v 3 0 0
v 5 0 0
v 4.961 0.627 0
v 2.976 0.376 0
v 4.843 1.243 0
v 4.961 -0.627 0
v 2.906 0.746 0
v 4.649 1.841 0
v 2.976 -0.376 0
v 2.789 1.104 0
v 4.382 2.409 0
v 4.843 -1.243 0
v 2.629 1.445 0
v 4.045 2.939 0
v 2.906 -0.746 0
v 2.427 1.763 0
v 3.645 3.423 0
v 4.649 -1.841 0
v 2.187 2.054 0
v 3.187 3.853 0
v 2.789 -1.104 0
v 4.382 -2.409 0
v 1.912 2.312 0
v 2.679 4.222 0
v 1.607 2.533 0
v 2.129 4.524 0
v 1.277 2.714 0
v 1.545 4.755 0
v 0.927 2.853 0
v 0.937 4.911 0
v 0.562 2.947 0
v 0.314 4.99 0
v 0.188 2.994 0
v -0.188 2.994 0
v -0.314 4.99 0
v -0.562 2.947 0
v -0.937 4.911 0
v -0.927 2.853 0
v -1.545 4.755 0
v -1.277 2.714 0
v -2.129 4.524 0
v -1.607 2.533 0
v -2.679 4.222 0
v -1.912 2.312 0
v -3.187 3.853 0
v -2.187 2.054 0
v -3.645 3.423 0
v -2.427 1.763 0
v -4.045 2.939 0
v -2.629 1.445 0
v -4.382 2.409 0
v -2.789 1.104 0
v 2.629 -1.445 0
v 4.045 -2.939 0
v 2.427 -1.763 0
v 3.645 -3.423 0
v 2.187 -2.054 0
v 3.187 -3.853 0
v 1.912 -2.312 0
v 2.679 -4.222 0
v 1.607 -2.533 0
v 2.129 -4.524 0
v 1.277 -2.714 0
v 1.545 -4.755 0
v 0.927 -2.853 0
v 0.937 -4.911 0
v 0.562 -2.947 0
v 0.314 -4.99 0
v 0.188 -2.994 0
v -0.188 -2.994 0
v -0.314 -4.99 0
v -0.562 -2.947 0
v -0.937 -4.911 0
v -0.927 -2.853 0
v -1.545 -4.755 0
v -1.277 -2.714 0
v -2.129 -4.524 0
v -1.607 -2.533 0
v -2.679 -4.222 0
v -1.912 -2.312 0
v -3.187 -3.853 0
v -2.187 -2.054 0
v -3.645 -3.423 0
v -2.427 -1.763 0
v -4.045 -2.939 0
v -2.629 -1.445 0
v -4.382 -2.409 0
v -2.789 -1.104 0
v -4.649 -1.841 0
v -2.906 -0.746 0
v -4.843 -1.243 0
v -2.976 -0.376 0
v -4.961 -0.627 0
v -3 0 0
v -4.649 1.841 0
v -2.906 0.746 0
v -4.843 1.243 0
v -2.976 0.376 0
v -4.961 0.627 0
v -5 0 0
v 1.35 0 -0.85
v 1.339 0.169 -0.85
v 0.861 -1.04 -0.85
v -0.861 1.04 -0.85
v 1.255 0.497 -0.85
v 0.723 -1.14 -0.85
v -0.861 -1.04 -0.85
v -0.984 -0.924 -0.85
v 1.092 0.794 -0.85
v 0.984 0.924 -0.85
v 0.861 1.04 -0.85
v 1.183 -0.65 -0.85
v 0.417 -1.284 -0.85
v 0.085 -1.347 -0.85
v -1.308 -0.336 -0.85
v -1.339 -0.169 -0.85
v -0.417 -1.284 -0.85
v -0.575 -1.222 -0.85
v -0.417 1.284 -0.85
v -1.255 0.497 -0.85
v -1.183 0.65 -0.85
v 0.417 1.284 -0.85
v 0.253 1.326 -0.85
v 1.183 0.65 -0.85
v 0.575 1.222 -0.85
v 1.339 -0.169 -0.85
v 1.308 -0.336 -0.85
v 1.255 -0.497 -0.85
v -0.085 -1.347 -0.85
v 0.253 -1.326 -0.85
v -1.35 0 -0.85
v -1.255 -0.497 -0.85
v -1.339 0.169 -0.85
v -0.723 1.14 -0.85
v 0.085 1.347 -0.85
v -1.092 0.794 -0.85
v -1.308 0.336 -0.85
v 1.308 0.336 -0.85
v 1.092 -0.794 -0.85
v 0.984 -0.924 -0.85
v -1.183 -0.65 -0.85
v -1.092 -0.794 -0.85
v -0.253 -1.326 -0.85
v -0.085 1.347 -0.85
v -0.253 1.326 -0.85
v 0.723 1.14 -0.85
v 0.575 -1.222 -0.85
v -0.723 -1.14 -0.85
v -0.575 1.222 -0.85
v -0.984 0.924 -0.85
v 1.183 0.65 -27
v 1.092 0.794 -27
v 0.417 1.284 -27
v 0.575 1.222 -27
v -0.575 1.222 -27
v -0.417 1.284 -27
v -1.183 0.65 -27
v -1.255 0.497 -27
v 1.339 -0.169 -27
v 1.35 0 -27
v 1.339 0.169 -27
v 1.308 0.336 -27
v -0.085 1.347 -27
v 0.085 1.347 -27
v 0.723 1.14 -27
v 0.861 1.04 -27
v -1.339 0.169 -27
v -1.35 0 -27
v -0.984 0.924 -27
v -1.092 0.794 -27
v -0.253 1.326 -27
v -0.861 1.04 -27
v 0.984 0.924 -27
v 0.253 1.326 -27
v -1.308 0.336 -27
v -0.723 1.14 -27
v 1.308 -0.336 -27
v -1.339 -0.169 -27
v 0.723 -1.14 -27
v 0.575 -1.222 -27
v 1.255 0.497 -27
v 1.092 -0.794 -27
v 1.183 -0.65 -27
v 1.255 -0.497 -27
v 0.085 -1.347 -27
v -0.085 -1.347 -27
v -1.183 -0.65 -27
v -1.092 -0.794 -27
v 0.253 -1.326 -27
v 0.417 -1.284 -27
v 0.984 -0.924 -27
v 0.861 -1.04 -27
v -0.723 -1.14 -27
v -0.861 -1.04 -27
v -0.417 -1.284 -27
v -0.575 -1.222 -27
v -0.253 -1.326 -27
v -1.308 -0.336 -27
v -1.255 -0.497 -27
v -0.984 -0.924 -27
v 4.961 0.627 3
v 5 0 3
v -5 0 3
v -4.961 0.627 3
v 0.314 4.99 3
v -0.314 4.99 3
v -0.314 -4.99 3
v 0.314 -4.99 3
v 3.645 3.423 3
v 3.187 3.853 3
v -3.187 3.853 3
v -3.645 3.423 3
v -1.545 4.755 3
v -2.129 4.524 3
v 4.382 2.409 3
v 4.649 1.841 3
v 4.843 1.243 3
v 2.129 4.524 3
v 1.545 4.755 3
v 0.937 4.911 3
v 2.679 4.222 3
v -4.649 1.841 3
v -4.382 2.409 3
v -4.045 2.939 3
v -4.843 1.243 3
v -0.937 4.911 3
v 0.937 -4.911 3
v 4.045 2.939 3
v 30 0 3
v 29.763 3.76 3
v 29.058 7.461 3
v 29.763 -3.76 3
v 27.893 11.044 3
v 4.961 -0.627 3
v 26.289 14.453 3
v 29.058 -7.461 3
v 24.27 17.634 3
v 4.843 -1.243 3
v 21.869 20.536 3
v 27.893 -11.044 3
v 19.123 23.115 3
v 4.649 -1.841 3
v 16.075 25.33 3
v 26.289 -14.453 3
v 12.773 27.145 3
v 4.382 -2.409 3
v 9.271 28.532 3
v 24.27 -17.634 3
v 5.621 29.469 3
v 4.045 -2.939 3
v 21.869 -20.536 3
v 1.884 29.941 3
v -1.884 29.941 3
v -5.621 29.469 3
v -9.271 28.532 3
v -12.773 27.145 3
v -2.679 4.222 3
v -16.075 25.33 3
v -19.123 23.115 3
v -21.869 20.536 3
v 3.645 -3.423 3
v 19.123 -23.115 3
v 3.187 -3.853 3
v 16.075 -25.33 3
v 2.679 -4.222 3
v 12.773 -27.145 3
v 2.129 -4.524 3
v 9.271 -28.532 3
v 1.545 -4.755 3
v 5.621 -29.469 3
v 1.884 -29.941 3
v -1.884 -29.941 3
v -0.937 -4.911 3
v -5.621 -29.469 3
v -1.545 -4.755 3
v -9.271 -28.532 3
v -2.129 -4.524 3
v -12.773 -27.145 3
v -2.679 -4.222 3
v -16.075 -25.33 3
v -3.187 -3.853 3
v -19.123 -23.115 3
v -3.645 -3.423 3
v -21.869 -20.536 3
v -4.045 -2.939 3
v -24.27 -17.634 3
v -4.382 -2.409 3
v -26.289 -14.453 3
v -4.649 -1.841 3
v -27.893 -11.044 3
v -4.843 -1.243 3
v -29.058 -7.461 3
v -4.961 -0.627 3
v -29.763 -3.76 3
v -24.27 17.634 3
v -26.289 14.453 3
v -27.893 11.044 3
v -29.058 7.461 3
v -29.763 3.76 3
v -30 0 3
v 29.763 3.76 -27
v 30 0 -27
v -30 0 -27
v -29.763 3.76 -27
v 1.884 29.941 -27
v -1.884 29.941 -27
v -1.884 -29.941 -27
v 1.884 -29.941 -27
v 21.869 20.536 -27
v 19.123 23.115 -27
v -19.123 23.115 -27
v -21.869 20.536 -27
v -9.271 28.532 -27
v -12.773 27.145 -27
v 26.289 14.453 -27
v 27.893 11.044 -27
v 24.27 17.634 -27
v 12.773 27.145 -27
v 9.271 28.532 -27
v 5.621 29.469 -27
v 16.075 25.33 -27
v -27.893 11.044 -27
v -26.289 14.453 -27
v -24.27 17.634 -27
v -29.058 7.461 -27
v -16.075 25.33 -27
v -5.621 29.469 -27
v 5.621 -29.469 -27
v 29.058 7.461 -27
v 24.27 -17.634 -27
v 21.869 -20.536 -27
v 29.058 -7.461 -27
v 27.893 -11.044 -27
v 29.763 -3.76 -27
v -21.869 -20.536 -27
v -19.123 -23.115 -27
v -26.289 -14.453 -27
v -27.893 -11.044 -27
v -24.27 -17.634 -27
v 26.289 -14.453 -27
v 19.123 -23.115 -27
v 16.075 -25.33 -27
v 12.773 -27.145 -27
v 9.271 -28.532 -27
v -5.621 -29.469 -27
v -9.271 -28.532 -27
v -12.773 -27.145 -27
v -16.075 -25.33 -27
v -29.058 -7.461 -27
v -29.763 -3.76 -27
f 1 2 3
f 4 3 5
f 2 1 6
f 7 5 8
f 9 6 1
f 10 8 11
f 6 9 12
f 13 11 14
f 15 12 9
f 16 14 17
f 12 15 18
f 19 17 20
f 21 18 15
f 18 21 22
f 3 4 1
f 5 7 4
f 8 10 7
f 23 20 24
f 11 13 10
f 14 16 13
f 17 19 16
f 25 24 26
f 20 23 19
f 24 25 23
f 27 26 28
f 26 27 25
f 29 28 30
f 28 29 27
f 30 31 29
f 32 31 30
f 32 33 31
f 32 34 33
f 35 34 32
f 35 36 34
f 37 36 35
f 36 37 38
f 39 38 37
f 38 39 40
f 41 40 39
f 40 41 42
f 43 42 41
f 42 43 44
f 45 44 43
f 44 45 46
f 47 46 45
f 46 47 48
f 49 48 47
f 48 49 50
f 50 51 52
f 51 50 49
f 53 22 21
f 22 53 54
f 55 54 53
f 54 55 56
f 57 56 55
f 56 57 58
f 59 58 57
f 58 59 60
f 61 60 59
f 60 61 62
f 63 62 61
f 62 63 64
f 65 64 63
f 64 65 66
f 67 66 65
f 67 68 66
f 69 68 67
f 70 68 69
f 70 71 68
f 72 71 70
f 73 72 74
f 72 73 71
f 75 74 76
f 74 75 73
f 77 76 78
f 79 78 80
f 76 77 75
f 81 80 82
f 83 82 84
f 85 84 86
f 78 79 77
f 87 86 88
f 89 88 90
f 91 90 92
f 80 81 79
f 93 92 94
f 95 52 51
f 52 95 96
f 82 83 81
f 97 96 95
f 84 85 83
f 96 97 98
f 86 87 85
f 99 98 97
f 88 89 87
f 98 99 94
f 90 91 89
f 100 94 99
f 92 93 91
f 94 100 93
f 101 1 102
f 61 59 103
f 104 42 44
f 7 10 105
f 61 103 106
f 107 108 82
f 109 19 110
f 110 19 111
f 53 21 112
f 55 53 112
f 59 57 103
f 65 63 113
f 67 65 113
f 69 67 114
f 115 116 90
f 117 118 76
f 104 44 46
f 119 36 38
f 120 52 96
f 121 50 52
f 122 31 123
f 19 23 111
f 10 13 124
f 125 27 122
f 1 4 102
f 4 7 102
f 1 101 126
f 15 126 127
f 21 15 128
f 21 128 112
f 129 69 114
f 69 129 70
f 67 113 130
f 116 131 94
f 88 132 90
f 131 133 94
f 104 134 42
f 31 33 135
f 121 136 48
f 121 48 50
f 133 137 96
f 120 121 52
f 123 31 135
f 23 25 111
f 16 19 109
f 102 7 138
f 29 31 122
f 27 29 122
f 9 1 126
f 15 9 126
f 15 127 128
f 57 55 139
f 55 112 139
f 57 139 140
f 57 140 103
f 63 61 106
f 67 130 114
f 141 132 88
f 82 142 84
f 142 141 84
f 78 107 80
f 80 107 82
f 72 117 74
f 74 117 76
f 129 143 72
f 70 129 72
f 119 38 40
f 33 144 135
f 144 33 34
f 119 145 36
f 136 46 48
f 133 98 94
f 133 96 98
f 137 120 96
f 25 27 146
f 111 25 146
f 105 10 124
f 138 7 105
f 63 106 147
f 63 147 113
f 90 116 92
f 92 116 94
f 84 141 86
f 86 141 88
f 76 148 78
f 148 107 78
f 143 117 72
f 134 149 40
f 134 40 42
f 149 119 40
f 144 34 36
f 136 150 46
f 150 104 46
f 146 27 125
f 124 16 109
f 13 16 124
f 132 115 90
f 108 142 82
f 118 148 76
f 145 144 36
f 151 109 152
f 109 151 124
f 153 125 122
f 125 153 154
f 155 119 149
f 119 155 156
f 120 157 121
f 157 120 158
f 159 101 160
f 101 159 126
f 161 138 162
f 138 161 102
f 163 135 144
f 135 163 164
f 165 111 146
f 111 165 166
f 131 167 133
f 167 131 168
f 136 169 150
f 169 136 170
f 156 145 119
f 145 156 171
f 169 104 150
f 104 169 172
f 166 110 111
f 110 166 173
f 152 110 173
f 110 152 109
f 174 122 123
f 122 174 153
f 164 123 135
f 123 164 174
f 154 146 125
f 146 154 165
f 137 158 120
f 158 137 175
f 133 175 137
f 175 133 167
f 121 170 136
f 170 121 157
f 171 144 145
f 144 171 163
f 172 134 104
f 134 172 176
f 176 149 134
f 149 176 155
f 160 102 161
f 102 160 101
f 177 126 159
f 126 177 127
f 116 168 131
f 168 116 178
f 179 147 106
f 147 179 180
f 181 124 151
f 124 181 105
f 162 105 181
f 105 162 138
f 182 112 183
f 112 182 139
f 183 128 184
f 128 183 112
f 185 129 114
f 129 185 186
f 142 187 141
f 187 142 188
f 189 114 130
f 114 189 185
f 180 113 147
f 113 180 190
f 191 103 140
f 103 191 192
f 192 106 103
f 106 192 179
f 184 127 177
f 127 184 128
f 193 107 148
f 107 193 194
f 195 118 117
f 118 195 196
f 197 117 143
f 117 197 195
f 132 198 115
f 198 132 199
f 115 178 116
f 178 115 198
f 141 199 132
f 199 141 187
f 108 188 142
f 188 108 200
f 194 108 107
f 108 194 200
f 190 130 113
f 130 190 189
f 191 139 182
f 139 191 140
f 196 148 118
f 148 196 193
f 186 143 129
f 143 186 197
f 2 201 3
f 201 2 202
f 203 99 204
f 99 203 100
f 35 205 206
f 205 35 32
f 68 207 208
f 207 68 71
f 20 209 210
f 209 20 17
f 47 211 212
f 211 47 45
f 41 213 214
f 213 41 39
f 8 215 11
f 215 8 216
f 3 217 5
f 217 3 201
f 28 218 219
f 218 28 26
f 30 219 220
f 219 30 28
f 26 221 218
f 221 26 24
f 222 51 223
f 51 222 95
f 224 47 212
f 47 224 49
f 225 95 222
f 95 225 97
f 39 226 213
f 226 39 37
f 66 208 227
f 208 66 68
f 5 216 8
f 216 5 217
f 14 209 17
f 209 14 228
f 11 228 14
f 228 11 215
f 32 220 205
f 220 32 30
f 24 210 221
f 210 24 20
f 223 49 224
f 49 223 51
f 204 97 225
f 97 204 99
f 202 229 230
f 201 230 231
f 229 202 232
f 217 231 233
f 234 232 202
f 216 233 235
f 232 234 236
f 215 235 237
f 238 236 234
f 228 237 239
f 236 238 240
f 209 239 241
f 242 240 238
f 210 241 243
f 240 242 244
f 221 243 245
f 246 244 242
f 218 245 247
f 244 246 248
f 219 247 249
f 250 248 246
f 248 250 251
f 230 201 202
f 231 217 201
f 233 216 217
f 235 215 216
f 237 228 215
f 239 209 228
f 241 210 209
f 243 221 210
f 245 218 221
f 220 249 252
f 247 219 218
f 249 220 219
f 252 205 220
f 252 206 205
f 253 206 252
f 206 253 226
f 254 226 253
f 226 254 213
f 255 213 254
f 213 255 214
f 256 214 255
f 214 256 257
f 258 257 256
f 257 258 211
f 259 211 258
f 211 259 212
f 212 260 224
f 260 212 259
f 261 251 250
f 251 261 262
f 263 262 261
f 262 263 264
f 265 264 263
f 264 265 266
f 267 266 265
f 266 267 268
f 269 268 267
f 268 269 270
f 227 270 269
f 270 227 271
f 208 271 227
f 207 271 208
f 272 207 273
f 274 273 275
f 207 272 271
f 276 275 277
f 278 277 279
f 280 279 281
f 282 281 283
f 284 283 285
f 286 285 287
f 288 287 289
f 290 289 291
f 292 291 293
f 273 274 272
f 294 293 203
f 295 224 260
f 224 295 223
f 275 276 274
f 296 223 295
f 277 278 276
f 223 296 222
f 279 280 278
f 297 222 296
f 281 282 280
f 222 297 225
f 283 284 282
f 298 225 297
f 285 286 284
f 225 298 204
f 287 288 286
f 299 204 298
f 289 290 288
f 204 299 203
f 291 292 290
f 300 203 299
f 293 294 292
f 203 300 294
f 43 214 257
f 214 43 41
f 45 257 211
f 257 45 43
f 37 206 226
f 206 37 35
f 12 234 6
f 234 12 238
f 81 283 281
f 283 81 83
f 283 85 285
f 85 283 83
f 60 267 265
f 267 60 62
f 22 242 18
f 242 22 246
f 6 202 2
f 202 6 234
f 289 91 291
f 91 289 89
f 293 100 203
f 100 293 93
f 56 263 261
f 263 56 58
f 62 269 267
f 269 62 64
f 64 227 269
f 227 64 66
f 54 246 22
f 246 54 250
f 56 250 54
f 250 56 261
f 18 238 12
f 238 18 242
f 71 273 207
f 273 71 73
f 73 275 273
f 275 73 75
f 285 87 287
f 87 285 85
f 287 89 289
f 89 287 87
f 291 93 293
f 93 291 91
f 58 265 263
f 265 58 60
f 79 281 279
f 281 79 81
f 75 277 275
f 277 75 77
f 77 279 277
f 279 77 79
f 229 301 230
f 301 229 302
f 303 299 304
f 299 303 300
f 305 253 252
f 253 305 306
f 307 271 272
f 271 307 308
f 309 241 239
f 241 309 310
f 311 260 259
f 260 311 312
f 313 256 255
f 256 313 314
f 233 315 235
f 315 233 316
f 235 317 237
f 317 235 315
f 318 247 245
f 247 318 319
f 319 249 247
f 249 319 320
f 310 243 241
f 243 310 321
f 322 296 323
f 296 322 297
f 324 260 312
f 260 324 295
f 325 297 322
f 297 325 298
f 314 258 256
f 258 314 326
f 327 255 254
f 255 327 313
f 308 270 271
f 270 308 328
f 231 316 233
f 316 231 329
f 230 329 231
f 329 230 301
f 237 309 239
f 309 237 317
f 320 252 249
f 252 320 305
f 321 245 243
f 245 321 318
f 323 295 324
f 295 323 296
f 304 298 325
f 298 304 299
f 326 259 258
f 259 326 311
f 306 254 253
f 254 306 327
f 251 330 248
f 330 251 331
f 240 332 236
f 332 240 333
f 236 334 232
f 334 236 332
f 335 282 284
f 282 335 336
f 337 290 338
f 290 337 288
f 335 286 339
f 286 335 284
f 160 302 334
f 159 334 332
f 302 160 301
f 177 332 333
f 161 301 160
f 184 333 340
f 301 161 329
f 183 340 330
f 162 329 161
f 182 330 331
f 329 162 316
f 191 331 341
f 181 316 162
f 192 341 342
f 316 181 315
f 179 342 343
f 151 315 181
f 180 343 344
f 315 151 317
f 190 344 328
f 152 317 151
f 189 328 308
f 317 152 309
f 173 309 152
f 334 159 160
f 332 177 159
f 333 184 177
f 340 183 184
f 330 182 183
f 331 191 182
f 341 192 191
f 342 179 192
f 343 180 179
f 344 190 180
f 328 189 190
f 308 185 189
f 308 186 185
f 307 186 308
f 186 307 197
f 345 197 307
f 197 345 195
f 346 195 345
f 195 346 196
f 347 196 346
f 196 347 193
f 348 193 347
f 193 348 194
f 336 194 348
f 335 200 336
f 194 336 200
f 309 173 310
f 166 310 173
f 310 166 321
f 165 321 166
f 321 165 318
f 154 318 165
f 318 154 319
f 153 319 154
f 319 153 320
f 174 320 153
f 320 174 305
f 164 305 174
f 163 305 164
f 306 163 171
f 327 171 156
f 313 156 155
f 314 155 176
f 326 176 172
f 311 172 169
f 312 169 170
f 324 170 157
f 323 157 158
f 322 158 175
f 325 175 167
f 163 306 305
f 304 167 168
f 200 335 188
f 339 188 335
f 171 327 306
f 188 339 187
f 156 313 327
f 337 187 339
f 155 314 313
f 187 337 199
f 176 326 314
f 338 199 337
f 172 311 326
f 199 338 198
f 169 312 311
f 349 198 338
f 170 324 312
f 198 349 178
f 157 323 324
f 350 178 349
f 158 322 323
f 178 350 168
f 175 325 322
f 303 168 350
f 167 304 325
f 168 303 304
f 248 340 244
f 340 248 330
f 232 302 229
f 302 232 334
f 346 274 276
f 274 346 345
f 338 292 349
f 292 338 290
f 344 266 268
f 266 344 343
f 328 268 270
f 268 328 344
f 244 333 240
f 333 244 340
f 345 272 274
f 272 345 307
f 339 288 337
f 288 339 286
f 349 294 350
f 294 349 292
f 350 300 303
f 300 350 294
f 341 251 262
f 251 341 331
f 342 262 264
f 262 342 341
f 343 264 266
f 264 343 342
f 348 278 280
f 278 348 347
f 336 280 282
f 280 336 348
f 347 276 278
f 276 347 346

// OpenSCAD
$fn = 50;

difference() {
	union() {
		translate(v = [0, 0, -27.0]) {
			cylinder(h = 30, r = 30.0);
		}
	}
	union() {
		translate(v = [0, 0, 0]) {
			rotate(a = [0, 0, 0]) {
				difference() {
					union() {
						translate(v = [0, 0, -30.0]) {
							cylinder(h = 30, r = 1.0);
						}
						translate(v = [0, 0, -0.85]) {
							cylinder(h = 0.85, r1 = 1.35, r2 = 3.0);
						}
						translate(v = [0, 0, -30.0]) {
							cylinder(h = 30, r = 1.35);
						}
						translate(v = [0, 0, -30.0]) {
							cylinder(h = 30, r = 1.0);
						}
					}
					union();
				}
			}
		}
		#cylinder(h = 3, r = 5.0);
	}
}
